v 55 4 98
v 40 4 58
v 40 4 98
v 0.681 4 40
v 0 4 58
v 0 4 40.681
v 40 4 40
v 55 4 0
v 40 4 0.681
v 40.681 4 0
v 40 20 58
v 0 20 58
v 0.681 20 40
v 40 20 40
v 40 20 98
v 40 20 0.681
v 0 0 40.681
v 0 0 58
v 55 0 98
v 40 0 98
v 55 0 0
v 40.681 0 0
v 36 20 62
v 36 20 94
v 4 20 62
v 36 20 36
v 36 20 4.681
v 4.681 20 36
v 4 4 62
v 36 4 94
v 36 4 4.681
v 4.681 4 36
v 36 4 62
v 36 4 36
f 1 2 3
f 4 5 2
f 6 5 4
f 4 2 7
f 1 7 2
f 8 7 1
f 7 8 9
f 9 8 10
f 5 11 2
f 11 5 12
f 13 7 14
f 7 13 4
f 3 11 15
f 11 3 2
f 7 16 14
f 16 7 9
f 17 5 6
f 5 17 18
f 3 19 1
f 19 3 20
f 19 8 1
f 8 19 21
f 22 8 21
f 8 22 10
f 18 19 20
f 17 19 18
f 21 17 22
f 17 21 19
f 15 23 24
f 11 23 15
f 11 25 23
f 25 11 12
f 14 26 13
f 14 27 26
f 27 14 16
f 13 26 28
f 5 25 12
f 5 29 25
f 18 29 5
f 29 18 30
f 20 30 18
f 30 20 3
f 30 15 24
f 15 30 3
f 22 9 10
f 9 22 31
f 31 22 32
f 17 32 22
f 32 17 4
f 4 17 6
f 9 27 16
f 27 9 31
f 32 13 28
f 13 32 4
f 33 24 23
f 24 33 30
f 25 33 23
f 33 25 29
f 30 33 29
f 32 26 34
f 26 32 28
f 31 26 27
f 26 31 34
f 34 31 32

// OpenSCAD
shelfHeight = 18;
spacerSize = 20;
spacerGap = 4;
spacerSpan = 40;
spacerLength = 20;


difference(){
    spacer();
    translate([shelfHeight+spacerSpan, 50 + spacerGap, 0+spacerSpan])
        rotate([0, 0, 90])
            shelf();
    translate([shelfHeight+spacerSpan, 50 + spacerGap, 0+spacerSpan])
        rotate([0, 0, 90])
            %shelf();
}


module spacer(){
    difference(){
        cube(size=[ spacerSpan + shelfHeight-3, spacerSize, shelfHeight+(spacerSpan*2)], center=false);
        translate([spacerSpan+shelfHeight, 0, 2*(spacerSpan+shelfHeight)]) 
            rotate([0, 225, 0])
            cube(size=[ spacerSpan+shelfHeight+spacerGap, spacerSize, shelfHeight+(spacerSpan*2)], center=false);
        translate([11, 0, -(spacerSpan+shelfHeight)]) 
            rotate([0, -45, 0])
            cube(size=[ spacerSpan+shelfHeight+spacerGap, spacerSize, shelfHeight+(spacerSpan*2)], center=false);
        translate([-(shelfHeight + spacerGap* 2), spacerGap, (spacerSpan+shelfHeight + spacerGap)]) 
            cube(size=[ spacerSpan+shelfHeight+spacerGap, spacerSize, shelfHeight+(spacerSpan*2)], center=false);
        translate([-(shelfHeight + spacerGap* 2), spacerGap, -(spacerSpan+shelfHeight + spacerGap)]) 
            cube(size=[ spacerSpan+shelfHeight+spacerGap, spacerSize, shelfHeight+(spacerSpan*2)], center=false);
    }
}


module shelf() {
    translate([-50, 0, 0]) 
        cube(size=[100, 100, shelfHeight], center=false);    
    translate([-50, -1, -50])      
        cube(size=[100, shelfHeight+1, 150], center=false);    
}
